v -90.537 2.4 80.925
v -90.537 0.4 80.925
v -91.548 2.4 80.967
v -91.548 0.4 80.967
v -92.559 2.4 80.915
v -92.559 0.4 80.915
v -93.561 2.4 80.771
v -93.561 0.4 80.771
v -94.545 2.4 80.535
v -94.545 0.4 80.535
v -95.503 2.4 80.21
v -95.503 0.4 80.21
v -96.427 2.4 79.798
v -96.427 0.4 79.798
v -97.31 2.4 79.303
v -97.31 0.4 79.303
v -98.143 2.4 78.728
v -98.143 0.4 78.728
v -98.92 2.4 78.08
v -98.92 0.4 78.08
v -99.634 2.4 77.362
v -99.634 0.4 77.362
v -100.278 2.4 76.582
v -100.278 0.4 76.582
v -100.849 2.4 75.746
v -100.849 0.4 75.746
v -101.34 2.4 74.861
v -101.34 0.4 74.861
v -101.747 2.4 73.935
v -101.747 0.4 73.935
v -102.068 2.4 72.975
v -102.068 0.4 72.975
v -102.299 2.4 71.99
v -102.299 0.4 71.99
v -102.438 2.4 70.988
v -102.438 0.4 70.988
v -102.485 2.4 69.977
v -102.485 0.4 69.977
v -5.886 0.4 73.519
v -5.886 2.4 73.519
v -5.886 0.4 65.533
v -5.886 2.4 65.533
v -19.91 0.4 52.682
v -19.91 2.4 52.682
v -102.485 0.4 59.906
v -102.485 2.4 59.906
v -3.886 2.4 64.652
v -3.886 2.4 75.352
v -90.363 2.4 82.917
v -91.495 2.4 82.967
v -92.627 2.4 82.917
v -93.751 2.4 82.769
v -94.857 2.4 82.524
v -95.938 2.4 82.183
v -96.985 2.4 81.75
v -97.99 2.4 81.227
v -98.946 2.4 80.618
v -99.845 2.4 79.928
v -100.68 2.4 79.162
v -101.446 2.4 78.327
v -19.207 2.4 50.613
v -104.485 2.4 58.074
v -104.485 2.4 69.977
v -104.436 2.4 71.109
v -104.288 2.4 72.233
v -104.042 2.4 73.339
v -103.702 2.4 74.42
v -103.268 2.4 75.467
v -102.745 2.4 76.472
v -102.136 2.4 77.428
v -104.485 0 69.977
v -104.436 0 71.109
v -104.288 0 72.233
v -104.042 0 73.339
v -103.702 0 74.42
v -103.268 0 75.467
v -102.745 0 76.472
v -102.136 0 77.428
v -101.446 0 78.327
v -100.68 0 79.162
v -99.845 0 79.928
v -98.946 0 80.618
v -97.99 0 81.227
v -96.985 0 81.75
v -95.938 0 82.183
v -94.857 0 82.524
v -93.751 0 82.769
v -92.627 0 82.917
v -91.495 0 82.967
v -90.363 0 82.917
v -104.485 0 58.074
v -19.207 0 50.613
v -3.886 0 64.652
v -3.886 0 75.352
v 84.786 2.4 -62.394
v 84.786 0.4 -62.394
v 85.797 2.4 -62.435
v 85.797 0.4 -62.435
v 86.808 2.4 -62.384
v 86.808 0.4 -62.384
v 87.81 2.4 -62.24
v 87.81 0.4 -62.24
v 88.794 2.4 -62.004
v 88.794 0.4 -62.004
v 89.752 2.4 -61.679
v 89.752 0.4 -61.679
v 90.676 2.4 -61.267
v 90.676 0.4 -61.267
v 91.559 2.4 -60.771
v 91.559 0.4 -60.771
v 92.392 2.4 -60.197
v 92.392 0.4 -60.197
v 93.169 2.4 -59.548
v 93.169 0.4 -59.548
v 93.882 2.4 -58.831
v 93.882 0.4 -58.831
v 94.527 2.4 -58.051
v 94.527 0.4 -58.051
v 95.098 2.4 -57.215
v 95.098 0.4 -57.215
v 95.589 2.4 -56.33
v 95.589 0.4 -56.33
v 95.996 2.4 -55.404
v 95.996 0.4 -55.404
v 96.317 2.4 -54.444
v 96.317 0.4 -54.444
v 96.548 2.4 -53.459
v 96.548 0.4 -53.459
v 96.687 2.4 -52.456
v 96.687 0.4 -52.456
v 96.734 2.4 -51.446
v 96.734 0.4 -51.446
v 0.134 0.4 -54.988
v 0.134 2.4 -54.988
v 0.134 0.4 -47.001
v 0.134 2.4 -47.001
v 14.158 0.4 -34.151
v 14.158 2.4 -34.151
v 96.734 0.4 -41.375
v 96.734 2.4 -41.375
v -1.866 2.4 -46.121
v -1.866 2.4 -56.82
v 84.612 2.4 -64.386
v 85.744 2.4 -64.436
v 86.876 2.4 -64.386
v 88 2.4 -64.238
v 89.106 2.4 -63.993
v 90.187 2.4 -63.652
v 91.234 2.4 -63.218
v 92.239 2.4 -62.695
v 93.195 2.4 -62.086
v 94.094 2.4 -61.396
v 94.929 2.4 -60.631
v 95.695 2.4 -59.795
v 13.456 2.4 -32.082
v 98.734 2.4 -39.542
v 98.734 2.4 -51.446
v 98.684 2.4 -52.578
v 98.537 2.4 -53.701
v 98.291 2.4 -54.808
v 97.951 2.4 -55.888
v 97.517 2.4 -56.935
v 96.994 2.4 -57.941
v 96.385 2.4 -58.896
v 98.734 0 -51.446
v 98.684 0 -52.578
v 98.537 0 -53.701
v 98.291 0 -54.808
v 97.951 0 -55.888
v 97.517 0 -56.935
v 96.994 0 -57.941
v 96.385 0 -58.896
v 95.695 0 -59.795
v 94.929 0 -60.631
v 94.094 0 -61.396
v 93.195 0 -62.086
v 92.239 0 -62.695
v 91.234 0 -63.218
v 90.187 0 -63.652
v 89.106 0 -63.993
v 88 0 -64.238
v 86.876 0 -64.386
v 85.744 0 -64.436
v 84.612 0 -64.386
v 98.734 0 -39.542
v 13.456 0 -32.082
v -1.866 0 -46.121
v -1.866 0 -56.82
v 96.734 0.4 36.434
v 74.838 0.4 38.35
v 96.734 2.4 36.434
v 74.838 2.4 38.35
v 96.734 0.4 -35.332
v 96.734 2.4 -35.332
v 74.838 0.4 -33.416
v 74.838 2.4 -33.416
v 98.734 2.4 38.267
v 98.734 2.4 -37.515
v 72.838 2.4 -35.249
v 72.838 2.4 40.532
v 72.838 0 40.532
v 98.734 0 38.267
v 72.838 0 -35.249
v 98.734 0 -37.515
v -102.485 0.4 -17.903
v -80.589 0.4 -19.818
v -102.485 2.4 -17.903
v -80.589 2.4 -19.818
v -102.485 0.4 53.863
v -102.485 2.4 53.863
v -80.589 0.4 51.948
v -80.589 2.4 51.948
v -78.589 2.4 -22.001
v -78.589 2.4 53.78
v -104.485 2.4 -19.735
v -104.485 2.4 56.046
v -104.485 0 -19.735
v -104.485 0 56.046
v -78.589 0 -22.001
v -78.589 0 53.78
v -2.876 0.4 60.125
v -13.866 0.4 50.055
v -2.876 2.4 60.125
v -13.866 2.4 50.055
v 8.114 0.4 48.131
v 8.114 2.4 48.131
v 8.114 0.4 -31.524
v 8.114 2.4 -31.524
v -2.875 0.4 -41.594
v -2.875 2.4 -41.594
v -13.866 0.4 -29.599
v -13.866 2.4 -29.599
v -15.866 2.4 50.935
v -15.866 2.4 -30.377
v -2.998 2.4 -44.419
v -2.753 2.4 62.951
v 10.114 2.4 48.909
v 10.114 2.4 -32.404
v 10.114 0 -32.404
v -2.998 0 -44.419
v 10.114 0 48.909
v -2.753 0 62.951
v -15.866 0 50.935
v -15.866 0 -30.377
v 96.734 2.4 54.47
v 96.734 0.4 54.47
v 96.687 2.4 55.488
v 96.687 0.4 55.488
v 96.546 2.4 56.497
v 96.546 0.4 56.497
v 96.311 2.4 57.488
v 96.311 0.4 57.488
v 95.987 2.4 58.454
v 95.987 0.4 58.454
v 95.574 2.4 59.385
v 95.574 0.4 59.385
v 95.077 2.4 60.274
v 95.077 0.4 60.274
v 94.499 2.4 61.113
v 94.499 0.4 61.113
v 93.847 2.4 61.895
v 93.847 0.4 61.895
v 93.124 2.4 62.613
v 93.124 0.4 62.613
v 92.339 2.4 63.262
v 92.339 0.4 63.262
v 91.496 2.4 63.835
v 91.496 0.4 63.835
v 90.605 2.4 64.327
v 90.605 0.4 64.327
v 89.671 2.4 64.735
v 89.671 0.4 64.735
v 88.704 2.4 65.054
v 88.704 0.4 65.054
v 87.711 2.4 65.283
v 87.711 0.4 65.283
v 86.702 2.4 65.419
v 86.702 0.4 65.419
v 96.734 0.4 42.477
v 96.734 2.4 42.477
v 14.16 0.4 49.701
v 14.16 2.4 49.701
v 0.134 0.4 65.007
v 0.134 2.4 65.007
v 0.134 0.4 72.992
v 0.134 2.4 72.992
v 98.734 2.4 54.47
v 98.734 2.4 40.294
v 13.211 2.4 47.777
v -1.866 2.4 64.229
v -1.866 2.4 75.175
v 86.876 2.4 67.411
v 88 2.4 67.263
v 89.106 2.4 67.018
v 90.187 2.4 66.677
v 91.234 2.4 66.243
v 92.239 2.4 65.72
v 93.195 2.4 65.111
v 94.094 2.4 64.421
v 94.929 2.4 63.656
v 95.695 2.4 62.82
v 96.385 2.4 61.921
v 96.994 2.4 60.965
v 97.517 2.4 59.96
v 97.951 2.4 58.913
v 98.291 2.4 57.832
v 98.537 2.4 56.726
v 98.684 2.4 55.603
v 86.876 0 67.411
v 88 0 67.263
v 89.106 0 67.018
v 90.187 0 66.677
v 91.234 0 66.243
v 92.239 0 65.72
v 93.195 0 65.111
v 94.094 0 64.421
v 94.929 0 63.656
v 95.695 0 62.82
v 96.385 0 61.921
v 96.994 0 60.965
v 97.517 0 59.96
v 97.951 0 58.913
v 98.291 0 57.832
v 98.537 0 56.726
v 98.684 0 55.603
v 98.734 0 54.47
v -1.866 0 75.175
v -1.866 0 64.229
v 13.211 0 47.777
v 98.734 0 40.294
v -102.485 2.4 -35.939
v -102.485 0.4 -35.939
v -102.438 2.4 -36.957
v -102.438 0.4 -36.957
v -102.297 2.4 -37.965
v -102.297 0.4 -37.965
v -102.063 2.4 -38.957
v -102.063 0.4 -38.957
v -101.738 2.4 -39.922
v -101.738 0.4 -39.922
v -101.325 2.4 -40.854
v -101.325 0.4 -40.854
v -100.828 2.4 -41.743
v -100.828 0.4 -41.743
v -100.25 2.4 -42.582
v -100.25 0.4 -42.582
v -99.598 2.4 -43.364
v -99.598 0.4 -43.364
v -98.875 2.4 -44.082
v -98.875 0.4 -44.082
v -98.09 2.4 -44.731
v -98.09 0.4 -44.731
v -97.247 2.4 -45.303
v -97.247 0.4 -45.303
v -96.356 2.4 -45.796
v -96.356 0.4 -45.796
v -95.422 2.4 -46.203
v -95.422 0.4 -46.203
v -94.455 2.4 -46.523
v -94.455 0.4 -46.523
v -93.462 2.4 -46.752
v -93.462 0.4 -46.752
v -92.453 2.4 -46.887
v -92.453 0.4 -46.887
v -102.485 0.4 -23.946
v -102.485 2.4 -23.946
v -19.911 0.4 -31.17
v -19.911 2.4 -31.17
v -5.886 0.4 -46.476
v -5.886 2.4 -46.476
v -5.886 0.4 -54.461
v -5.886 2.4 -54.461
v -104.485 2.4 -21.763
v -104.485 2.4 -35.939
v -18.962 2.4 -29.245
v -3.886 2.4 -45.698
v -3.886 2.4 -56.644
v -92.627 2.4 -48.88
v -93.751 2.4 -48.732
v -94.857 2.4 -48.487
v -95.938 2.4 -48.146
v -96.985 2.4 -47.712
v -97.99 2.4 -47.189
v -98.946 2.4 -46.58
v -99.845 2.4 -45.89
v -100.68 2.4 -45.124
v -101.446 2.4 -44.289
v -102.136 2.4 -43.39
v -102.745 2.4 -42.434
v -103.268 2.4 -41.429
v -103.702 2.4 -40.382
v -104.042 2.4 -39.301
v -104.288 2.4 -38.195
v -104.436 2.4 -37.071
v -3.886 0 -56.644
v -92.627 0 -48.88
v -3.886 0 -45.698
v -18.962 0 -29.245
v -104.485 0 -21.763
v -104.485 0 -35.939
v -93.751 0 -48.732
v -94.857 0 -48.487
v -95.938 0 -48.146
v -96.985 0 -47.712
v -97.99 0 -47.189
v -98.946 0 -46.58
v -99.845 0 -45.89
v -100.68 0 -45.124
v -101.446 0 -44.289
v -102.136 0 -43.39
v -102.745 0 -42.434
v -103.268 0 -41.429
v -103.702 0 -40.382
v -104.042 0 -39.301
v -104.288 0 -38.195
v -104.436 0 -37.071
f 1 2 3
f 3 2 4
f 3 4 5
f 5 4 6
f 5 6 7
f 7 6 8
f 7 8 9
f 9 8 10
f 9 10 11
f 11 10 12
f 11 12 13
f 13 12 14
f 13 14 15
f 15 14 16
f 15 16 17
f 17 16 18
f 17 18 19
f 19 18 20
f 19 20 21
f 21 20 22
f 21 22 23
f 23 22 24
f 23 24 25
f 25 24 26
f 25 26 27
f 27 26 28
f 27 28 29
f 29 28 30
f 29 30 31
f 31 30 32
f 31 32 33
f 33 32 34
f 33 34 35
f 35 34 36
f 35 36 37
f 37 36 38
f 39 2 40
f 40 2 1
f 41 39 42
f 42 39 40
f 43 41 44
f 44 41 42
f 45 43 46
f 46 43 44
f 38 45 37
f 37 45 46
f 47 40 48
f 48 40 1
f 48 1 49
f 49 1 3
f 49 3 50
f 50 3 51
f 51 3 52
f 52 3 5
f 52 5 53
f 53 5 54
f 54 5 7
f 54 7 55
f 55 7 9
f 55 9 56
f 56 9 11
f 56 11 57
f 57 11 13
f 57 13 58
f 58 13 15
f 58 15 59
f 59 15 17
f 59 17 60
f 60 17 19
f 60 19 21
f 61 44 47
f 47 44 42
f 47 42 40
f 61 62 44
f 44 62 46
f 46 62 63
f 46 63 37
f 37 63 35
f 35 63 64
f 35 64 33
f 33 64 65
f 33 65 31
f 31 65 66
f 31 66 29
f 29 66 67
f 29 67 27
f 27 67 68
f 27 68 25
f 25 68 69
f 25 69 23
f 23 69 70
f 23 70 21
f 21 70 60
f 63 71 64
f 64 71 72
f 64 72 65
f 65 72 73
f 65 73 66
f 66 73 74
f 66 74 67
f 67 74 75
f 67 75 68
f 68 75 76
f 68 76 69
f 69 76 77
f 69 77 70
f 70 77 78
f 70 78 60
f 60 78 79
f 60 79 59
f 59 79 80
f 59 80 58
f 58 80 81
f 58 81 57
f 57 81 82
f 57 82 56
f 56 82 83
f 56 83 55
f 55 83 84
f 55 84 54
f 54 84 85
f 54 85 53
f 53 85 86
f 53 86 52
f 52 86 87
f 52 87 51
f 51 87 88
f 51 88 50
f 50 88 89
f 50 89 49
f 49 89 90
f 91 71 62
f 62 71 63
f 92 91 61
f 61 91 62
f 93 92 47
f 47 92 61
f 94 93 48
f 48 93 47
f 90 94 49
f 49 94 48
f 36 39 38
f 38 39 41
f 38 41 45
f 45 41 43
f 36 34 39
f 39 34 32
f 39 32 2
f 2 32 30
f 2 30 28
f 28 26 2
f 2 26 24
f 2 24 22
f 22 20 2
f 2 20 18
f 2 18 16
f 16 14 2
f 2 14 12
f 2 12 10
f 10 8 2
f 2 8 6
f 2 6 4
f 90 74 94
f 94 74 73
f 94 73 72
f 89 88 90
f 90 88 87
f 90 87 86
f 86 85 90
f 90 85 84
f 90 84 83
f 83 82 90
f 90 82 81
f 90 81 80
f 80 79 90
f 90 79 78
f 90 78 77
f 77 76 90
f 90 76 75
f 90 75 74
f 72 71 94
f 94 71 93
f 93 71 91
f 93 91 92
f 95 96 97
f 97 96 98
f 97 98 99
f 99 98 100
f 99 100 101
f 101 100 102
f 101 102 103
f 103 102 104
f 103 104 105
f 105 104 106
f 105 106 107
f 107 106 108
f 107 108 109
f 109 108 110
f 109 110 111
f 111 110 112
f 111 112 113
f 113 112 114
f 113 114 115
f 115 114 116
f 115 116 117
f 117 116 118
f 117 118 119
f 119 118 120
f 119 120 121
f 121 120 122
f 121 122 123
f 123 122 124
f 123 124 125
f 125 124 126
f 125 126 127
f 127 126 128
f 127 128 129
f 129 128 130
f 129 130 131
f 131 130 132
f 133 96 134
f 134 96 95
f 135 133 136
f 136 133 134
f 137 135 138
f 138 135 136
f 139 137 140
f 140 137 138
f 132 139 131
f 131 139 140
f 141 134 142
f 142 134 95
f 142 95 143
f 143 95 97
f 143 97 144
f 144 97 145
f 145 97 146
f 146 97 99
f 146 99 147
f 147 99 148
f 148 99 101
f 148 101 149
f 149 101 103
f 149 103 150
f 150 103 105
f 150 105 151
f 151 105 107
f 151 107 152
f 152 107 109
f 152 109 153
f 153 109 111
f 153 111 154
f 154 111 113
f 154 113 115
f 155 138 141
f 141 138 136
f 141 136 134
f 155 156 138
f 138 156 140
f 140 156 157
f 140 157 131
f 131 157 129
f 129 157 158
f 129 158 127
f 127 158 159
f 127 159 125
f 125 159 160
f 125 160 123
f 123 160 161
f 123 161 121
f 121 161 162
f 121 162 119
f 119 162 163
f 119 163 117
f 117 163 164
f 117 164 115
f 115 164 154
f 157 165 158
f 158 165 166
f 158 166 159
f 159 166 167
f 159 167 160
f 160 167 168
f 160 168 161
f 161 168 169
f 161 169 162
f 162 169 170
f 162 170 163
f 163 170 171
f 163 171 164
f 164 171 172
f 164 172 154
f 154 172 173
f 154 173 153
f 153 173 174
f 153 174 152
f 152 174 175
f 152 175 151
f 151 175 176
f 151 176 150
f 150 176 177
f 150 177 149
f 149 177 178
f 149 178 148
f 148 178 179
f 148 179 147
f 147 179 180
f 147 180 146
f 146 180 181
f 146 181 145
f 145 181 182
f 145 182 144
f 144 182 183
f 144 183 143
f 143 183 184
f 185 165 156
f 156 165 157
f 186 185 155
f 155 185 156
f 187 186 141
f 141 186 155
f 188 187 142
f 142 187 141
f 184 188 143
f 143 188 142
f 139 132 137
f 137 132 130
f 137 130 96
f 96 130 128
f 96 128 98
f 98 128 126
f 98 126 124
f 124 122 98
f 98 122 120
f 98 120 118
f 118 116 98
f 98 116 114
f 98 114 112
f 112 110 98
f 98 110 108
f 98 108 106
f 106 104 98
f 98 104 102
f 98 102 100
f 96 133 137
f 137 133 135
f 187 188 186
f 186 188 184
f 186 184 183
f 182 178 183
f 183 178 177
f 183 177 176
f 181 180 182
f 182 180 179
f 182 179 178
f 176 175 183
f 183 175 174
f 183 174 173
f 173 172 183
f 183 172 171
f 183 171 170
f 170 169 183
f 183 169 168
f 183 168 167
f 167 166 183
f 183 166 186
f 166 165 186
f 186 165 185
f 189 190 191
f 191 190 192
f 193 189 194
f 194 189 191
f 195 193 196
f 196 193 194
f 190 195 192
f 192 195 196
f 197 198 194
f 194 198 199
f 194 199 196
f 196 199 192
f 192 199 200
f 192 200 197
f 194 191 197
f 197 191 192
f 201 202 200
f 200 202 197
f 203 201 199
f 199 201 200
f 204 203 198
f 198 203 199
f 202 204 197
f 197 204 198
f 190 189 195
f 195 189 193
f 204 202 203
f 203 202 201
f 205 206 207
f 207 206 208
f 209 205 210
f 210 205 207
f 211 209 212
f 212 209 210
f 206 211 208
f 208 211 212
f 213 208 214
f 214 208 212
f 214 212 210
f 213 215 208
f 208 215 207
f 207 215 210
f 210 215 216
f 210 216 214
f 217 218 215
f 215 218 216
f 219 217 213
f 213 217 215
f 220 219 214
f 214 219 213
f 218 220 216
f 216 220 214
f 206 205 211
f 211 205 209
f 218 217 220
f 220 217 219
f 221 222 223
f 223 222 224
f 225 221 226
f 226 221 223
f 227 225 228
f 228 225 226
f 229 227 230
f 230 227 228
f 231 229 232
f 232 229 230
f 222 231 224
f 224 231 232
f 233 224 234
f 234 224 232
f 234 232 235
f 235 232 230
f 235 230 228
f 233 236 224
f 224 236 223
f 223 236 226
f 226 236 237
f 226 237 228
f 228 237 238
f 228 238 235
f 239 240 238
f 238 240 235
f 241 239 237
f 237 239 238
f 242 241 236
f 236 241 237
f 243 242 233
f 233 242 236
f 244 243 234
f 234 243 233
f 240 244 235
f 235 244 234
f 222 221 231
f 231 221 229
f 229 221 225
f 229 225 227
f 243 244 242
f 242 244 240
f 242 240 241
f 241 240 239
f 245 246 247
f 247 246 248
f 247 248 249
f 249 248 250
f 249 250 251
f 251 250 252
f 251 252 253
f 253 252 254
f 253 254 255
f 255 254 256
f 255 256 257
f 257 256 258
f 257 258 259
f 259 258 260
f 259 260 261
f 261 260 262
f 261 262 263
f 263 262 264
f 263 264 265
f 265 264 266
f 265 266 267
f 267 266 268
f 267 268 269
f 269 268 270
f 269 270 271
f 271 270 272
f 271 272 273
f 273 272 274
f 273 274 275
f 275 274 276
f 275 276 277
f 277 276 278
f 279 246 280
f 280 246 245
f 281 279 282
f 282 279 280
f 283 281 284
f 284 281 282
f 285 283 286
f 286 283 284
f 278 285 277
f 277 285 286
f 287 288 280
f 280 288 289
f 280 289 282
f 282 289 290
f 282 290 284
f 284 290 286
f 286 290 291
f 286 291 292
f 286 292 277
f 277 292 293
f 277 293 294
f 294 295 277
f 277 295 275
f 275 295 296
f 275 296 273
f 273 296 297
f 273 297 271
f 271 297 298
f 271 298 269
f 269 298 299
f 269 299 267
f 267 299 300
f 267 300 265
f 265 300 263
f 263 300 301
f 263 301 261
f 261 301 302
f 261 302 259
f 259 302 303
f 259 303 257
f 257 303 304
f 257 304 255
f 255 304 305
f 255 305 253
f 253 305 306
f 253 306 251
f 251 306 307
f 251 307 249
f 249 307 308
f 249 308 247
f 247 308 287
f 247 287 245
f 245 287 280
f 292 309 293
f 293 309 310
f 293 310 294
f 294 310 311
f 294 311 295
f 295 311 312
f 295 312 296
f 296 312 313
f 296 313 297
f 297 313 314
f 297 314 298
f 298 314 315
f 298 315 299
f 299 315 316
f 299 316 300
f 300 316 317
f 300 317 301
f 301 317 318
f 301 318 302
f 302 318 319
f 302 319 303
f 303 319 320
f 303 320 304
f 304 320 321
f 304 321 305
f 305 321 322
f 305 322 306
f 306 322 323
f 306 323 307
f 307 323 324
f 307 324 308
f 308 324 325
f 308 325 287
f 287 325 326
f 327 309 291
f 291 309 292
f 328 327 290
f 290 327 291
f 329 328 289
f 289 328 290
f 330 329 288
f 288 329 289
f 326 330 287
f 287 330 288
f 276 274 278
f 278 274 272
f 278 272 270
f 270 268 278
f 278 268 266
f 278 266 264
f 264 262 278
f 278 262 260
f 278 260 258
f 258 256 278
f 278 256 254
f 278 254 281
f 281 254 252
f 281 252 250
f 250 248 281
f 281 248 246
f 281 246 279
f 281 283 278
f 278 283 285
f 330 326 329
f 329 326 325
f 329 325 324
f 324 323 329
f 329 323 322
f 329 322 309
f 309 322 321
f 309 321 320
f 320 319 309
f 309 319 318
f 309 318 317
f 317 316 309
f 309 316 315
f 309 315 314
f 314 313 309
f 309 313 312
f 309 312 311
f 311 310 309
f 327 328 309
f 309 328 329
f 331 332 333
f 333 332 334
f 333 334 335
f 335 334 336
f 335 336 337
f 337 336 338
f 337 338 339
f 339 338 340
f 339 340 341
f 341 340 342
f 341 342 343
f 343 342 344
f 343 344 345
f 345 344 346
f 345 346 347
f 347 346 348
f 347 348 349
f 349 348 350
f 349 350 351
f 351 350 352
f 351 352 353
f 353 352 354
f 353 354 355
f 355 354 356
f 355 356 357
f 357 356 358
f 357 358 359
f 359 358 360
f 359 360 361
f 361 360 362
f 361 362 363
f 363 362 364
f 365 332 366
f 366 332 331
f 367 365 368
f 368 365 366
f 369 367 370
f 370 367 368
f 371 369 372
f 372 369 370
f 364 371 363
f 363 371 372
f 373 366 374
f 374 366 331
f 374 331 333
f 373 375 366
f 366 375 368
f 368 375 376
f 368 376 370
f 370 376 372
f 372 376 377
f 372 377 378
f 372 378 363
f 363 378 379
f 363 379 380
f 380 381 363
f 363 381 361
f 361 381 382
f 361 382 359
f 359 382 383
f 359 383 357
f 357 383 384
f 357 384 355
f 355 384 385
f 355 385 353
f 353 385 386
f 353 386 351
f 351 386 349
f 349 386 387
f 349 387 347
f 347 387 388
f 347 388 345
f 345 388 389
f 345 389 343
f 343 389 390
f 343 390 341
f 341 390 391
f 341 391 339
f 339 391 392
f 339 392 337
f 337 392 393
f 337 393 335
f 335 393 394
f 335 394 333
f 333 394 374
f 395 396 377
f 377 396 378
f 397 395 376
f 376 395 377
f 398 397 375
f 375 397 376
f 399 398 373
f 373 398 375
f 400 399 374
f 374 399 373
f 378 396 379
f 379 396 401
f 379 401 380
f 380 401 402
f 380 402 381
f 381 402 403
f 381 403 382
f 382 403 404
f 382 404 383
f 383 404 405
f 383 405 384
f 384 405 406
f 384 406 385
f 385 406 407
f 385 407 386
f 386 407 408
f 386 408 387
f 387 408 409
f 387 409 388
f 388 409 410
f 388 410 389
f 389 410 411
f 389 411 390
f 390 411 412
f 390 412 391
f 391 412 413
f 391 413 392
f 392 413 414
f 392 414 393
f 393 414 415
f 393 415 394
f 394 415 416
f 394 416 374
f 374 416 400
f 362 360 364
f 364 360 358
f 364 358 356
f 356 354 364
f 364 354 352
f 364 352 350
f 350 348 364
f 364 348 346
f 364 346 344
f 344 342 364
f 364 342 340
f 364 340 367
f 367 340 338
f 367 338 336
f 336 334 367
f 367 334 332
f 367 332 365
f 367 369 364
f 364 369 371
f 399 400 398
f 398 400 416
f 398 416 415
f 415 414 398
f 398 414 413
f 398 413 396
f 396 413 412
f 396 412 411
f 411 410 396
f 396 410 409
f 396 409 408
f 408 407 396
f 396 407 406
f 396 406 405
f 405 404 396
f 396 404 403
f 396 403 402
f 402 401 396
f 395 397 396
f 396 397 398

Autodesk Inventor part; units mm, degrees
ref_plane "YZ Plane" through (0, 0, 0) normal (1, 0, 0) x (0, 1, 0)
ref_plane "XZ Plane" through (0, 0, 0) normal (0, 1, 0) x (-1, 0, 0)
ref_plane "XY Plane" through (0, 0, 0) normal (0, 0, 1) x (1, 0, 0)
sketch "Sketch1" plane through (0, 0, 0) normal (0, 1, 0) x (-1, 0, 0)
  line L0 (-12.1245, -29.9474) -> (-12.1245, 45.854) construction
  line L1 (-12.1245, 45.854) -> (-70.8276, 40.7181) construction
  line L2 (-70.8276, 40.7181) -> (-70.8276, -35.0832) construction
  line L3 (-70.8276, -35.0832) -> (-12.1245, -29.9474) construction
  circle A0 centre (-41.476, 5.3854) radius 9 construction
  circle A1 centre (-41.476, 5.3854) radius 9 construction
  line L4 (-12.1245, 45.854) -> (-12.1245, -29.9474) construction
  line L5 (-12.1245, -29.9474) -> (-70.8276, -35.0832) construction
  line L6 (-70.8276, -35.0832) -> (-70.8276, 40.7181) construction
  line L7 (-70.8276, 40.7181) -> (-12.1245, 45.854) construction
  circle A2 centre (47.2271, 13.1459) radius 9 construction
  line L8 (17.8755, 48.4787) -> (76.5787, 53.6145) construction
  line L9 (76.5787, 53.6145) -> (76.5787, -22.1868) construction
  line L10 (76.5787, -22.1868) -> (17.8755, -27.3227) construction
  line L11 (17.8755, -27.3227) -> (17.8755, 48.4787) construction
  line L12 (-116.1245, 90.6782) -> (121.8755, 90.6782) construction
  arc A3 (125.9548, 86.599) -> (121.8755, 90.6782) centre (121.8755, 86.599) ccw construction
  line L13 (125.9548, 86.599) -> (125.9548, -68.0677) construction
  arc A4 (121.8755, -72.1469) -> (125.9548, -68.0677) centre (121.8755, -68.0677) ccw construction
  line L14 (121.8755, -72.1469) -> (-116.1245, -72.1469) construction
  arc A5 (-120.2037, -68.0677) -> (-116.1245, -72.1469) centre (-116.1245, -68.0677) ccw construction
  line L15 (-120.2037, -68.0677) -> (-120.2037, 86.599) construction
  arc A6 (-116.1245, 90.6782) -> (-120.2037, 86.599) centre (-116.1245, 86.599) ccw construction
  arc A7 (12.5619, -31.0369) -> (13.8755, -27.659) centre (8.8755, -27.659) ccw construction
  line L16 (13.8755, -27.659) -> (13.8755, 47.8594) construction
  arc A8 (13.8755, 47.8594) -> (12.2535, 51.5458) centre (8.8755, 47.8594) ccw construction
  line L17 (12.2535, 51.5458) -> (6.5619, 56.7611) construction
  arc A9 (6.5619, 56.7611) -> (-0.5024, 56.4527) centre (3.184, 53.0747) ccw construction
  line L18 (-0.5024, 56.4527) -> (-6.8108, 49.5682) construction
  arc A10 (-6.8108, 49.5682) -> (-8.1245, 46.1903) centre (-3.1245, 46.1903) ccw construction
  line L19 (-8.1245, 46.1903) -> (-8.1245, -29.3281) construction
  arc A11 (-8.1245, -29.3281) -> (-6.5024, -33.0144) centre (-3.1245, -29.3281) ccw construction
  line L20 (-6.5024, -33.0144) -> (-0.8108, -38.2298) construction
  arc A12 (-0.8108, -38.2298) -> (6.2535, -37.9214) centre (2.5671, -34.5434) ccw construction
  line L21 (6.2535, -37.9214) -> (12.5619, -31.0369) construction
  arc A13 (5.8755, 67.7282) -> (7.4976, 64.0418) centre (10.8755, 67.7282) ccw construction
  line L22 (7.4976, 64.0418) -> (18.2839, 54.1579) construction
  arc A14 (18.2839, 54.1579) -> (22.0977, 52.8633) centre (21.6619, 57.8443) ccw construction
  line L23 (22.0977, 52.8633) -> (97.9308, 59.4979) construction
  arc A15 (97.9308, 59.4979) -> (102.495, 64.4788) centre (97.495, 64.4788) ccw construction
  line L24 (102.495, 64.4788) -> (102.495, 69.9768) construction
  arc A16 (102.495, 69.9768) -> (90.5363, 80.935) centre (91.495, 69.9768) ccw construction
  line L25 (90.5363, 80.935) -> (10.4398, 73.9274) construction
  arc A17 (10.4398, 73.9274) -> (5.8755, 68.9465) centre (10.8755, 68.9465) ccw construction
  line L26 (5.8755, 68.9465) -> (5.8755, 67.7282) construction
  arc A18 (85.143, 52.3562) -> (80.5787, 47.3752) centre (85.5787, 47.3752) ccw construction
  line L27 (80.5787, 47.3752) -> (80.5787, -14.3727) construction
  arc A19 (80.5787, -14.3727) -> (86.0145, -19.3537) centre (85.5787, -14.3727) ccw construction
  line L28 (86.0145, -19.3537) -> (97.9308, -18.3111) construction
  arc A20 (97.9308, -18.3111) -> (102.495, -13.3302) centre (97.495, -13.3302) ccw construction
  line L29 (102.495, -13.3302) -> (102.495, 48.4177) construction
  arc A21 (102.495, 48.4177) -> (97.0592, 53.3987) centre (97.495, 48.4177) ccw construction
  line L30 (97.0592, 53.3987) -> (85.143, 52.3562) construction
  arc A22 (21.843, -30.9909) -> (18.5924, -32.5939) centre (22.2788, -35.9718) ccw construction
  line L31 (18.5924, -32.5939) -> (7.1892, -45.0383) construction
  arc A23 (7.1892, -45.0383) -> (5.8755, -48.4163) centre (10.8755, -48.4163) ccw construction
  line L32 (5.8755, -48.4163) -> (5.8755, -49.0153) construction
  arc A24 (5.8755, -49.0153) -> (11.3113, -53.9963) centre (10.8755, -49.0153) ccw construction
  line L33 (11.3113, -53.9963) -> (92.4537, -46.8973) construction
  arc A25 (92.4537, -46.8973) -> (102.495, -35.9391) centre (91.495, -35.9391) ccw construction
  line L34 (102.495, -35.9391) -> (102.495, -29.3913) construction
  arc A26 (102.495, -29.3913) -> (97.0592, -24.4103) centre (97.495, -29.3913) ccw construction
  line L35 (97.0592, -24.4103) -> (21.843, -30.9909) construction
  arc A27 (-4.6887, -55.3961) -> (-0.1245, -50.4152) centre (-5.1245, -50.4152) ccw construction
  line L36 (-0.1245, -50.4152) -> (-0.1245, -49.1969) construction
  arc A28 (-0.1245, -49.1969) -> (-1.7465, -45.5105) centre (-5.1245, -49.1969) ccw construction
  line L37 (-1.7465, -45.5105) -> (-12.5328, -35.6266) construction
  arc A29 (-12.5328, -35.6266) -> (-16.3466, -34.332) centre (-15.9108, -39.313) ccw construction
  line L38 (-16.3466, -34.332) -> (-92.1797, -40.9666) construction
  arc A30 (-92.1797, -40.9666) -> (-96.7439, -45.9475) centre (-91.7439, -45.9475) ccw construction
  line L39 (-96.7439, -45.9475) -> (-96.7439, -51.4455) construction
  arc A31 (-96.7439, -51.4455) -> (-84.7852, -62.4037) centre (-85.7439, -51.4455) ccw construction
  line L40 (-84.7852, -62.4037) -> (-4.6887, -55.3961) construction
  arc A32 (-79.3919, -33.8249) -> (-74.8276, -28.8439) centre (-79.8276, -28.8439) ccw construction
  line L41 (-74.8276, -28.8439) -> (-74.8276, 32.904) construction
  arc A33 (-74.8276, 32.904) -> (-80.2634, 37.885) centre (-79.8276, 32.904) ccw construction
  line L42 (-80.2634, 37.885) -> (-92.1797, 36.8424) construction
  arc A34 (-92.1797, 36.8424) -> (-96.7439, 31.8615) centre (-91.7439, 31.8615) ccw construction
  line L43 (-96.7439, 31.8615) -> (-96.7439, -29.8864) construction
  arc A35 (-96.7439, -29.8864) -> (-91.3081, -34.8674) centre (-91.7439, -29.8864) ccw construction
  line L44 (-91.3081, -34.8674) -> (-79.3919, -33.8249) construction
  arc A36 (-16.0919, 49.5222) -> (-12.8413, 51.1252) centre (-16.5277, 54.5032) ccw construction
  line L45 (-12.8413, 51.1252) -> (-1.4381, 63.5696) construction
  arc A37 (-1.4381, 63.5696) -> (-0.1245, 66.9476) centre (-5.1245, 66.9476) ccw construction
  line L46 (-0.1245, 66.9476) -> (-0.1245, 67.5466) construction
  arc A38 (-0.1245, 67.5466) -> (-5.5602, 72.5276) centre (-5.1245, 67.5466) ccw construction
  line L47 (-5.5602, 72.5276) -> (-86.7026, 65.4286) construction
  arc A39 (-86.7026, 65.4286) -> (-96.7439, 54.4704) centre (-85.7439, 54.4704) ccw construction
  line L48 (-96.7439, 54.4704) -> (-96.7439, 47.9226) construction
  arc A40 (-96.7439, 47.9226) -> (-91.3081, 42.9416) centre (-91.7439, 47.9226) ccw construction
  line L49 (-91.3081, 42.9416) -> (-16.0919, 49.5222) construction
  line L50 (19.2036, 50.6025) -> (104.495, 58.0645) construction
  line L51 (104.495, 58.0645) -> (104.495, 69.9768) construction
  arc A41 (104.495, 69.9768) -> (90.362, 82.9274) centre (91.495, 69.9768) ccw construction
  line L52 (90.362, 82.9274) -> (3.8755, 75.3608) construction
  line L53 (3.8755, 75.3608) -> (3.8755, 64.6481) construction
  line L54 (3.8755, 64.6481) -> (19.2036, 50.6025) construction
  line L55 (104.495, 56.0569) -> (78.5787, 53.7895) construction
  line L56 (78.5787, 53.7895) -> (78.5787, -22.0119) construction
  line L57 (78.5787, -22.0119) -> (104.495, -19.7445) construction
  line L58 (104.495, -19.7445) -> (104.495, 56.0569) construction
  line L59 (15.8755, -30.3811) -> (15.8755, 50.9394) construction
  line L60 (15.8755, 50.9394) -> (2.7522, 62.9648) construction
  line L61 (2.7522, 62.9648) -> (-10.1245, 48.9124) construction
  line L62 (-10.1245, 48.9124) -> (-10.1245, -32.4081) construction
  line L63 (-10.1245, -32.4081) -> (2.9989, -44.4335) construction
  line L64 (2.9989, -44.4335) -> (15.8755, -30.3811) construction
  line L65 (-13.2058, 47.767) -> (1.8755, 64.2254) construction
  line L66 (1.8755, 64.2254) -> (1.8755, 75.1858) construction
  line L67 (1.8755, 75.1858) -> (-86.8769, 67.421) construction
  arc A42 (-86.8769, 67.421) -> (-98.7439, 54.4704) centre (-85.7439, 54.4704) ccw construction
  line L68 (-98.7439, 54.4704) -> (-98.7439, 40.2834) construction
  line L69 (-98.7439, 40.2834) -> (-13.2058, 47.767) construction
  line L70 (1.8755, -46.1168) -> (-13.4525, -32.0712) construction
  line L71 (-13.4525, -32.0712) -> (-98.7439, -39.5332) construction
  line L72 (-98.7439, -39.5332) -> (-98.7439, -51.4455) construction
  arc A43 (-98.7439, -51.4455) -> (-84.6109, -64.3961) centre (-85.7439, -51.4455) ccw construction
  line L73 (-84.6109, -64.3961) -> (1.8755, -56.8295) construction
  line L74 (1.8755, -56.8295) -> (1.8755, -46.1168) construction
  line L75 (18.9569, -29.2357) -> (3.8755, -45.6941) construction
  line L76 (3.8755, -45.6941) -> (3.8755, -56.6545) construction
  line L77 (3.8755, -56.6545) -> (92.628, -48.8897) construction
  arc A44 (92.628, -48.8897) -> (104.495, -35.9391) centre (91.495, -35.9391) ccw construction
  line L78 (104.495, -35.9391) -> (104.495, -21.7521) construction
  line L79 (104.495, -21.7521) -> (18.9569, -29.2357) construction
  line L80 (-72.8276, -35.2582) -> (-72.8276, 40.5432) construction
  line L81 (-72.8276, 40.5432) -> (-98.7439, 38.2758) construction
  line L82 (-98.7439, 38.2758) -> (-98.7439, -37.5256) construction
  line L83 (-98.7439, -37.5256) -> (-72.8276, -35.2582) construction
  arc A45 (-87.0513, 69.4134) -> (-100.7439, 54.4704) centre (-85.7439, 54.4704) ccw construction
  line L84 (-87.0513, 69.4134) -> (90.1877, 84.9198) construction
  arc A46 (106.495, 69.9768) -> (90.1877, 84.9198) centre (91.495, 69.9768) ccw construction
  line L85 (106.495, 69.9768) -> (106.495, -35.9391) construction
  arc A47 (92.8024, -50.882) -> (106.495, -35.9391) centre (91.495, -35.9391) ccw construction
  line L86 (92.8024, -50.882) -> (-84.4366, -66.3884) construction
  arc A48 (-100.7439, -51.4455) -> (-84.4366, -66.3884) centre (-85.7439, -51.4455) ccw construction
  line L87 (-100.7439, -51.4455) -> (-100.7439, 54.4704) construction
  arc A49 (115.8755, 86.599) -> (121.8755, 80.599) centre (121.8755, 86.599) ccw construction
  line L88 (121.8755, 80.599) -> (121.8755, -62.0677) construction
  arc A50 (121.8755, -62.0677) -> (115.8755, -68.0677) centre (121.8755, -68.0677) ccw construction
  line L89 (115.8755, -68.0677) -> (-110.1245, -68.0677) construction
  arc A51 (-110.1245, -68.0677) -> (-116.1245, -62.0677) centre (-116.1245, -68.0677) ccw construction
  line L90 (-116.1245, -62.0677) -> (-116.1245, 80.599) construction
  arc A52 (-116.1245, 80.599) -> (-110.1245, 86.599) centre (-116.1245, 86.599) ccw construction
  line L91 (-110.1245, 86.599) -> (115.8755, 86.599) construction
  line L92 (104.485, -19.7353) -> (78.5887, -22.0009)
  line L93 (78.5887, -22.0009) -> (78.5887, 53.7803)
  line L94 (78.5887, 53.7803) -> (104.485, 56.046)
  line L95 (104.485, 56.046) -> (104.485, -19.7353)
  arc A53 (92.6272, -48.8797) -> (104.485, -35.9391) centre (91.495, -35.9391) ccw
  line L96 (92.6272, -48.8797) -> (3.8855, -56.6436)
  line L97 (3.8855, -56.6436) -> (3.8855, -45.698)
  line L98 (3.8855, -45.698) -> (18.9616, -29.2454)
  line L99 (18.9616, -29.2454) -> (104.485, -21.763)
  line L100 (104.485, -21.763) -> (104.485, -35.9391)
  line L101 (-13.456, -32.0815) -> (1.8655, -46.1212)
  line L102 (1.8655, -46.1212) -> (1.8655, -56.8203)
  line L103 (1.8655, -56.8203) -> (-84.6118, -64.3861)
  arc A54 (-98.7339, -51.4455) -> (-84.6118, -64.3861) centre (-85.7439, -51.4455) ccw
  line L104 (-98.7339, -51.4455) -> (-98.7339, -39.5424)
  line L105 (-98.7339, -39.5424) -> (-13.456, -32.0815)
  line L106 (-10.1145, -32.4037) -> (-10.1145, 48.9085)
  line L107 (-10.1145, 48.9085) -> (2.7528, 62.9507)
  line L108 (2.7528, 62.9507) -> (15.8655, 50.935)
  line L109 (15.8655, 50.935) -> (15.8655, -30.3772)
  line L110 (15.8655, -30.3772) -> (2.9983, -44.4194)
  line L111 (2.9983, -44.4194) -> (-10.1145, -32.4037)
  line L112 (104.485, 58.0737) -> (19.2071, 50.6128)
  line L113 (19.2071, 50.6128) -> (3.8855, 64.6525)
  line L114 (3.8855, 64.6525) -> (3.8855, 75.3516)
  line L115 (3.8855, 75.3516) -> (90.3629, 82.9174)
  arc A55 (104.485, 69.9768) -> (90.3629, 82.9174) centre (91.495, 69.9768) ccw
  line L116 (104.485, 69.9768) -> (104.485, 58.0737)
  line L117 (1.8655, 64.2293) -> (-13.2105, 47.7767)
  line L118 (-13.2105, 47.7767) -> (-98.7339, 40.2943)
  line L119 (-98.7339, 40.2943) -> (-98.7339, 54.4704)
  arc A56 (-86.8761, 67.411) -> (-98.7339, 54.4704) centre (-85.7439, 54.4704) ccw
  line L120 (-86.8761, 67.411) -> (1.8655, 75.1749)
  line L121 (1.8655, 75.1749) -> (1.8655, 64.2293)
  line L122 (-72.8376, 40.5323) -> (-72.8376, -35.249)
  line L123 (-72.8376, -35.249) -> (-98.7339, -37.5147)
  line L124 (-98.7339, -37.5147) -> (-98.7339, 38.2666)
  line L125 (-98.7339, 38.2666) -> (-72.8376, 40.5323)
  point P0 (2.8755, 9.2657)
  dimension "d31" = 0.01
  dimension "d32" = 0.01
  dimension "d33" = 0.01
  dimension "d34" = 0.01
  dimension "d35" = 0.01
  dimension "d36" = 0.01
  dimension "d37" = 0.01
extrude "Extrusion1" add sketch "Sketch1" along normal blind 0.4
sketch "Sketch9" plane through (0, 0.4, 0) normal (0, 1, 0) x (1, 0, 0)
  line L0 (-90.3629, -82.9174) -> (-3.8855, -75.3516) projected
  line L1 (-3.8855, -75.3516) -> (-3.8855, -64.6525) projected
  line L2 (-3.8855, -64.6525) -> (-19.2071, -50.6128) projected
  line L3 (-19.2071, -50.6128) -> (-104.485, -58.0737) projected
  line L4 (-104.485, -58.0737) -> (-104.485, -69.9768) projected
  arc A0 (-104.485, -69.9768) -> (-90.3629, -82.9174) centre (-91.495, -69.9768) ccw projected
  line L5 (-104.485, -56.046) -> (-78.5887, -53.7803) projected
  line L6 (-78.5887, -53.7803) -> (-78.5887, 22.0009) projected
  line L7 (-78.5887, 22.0009) -> (-104.485, 19.7353) projected
  line L8 (-104.485, 19.7353) -> (-104.485, -56.046) projected
  arc A1 (-92.6272, 48.8797) -> (-104.485, 35.9391) centre (-91.495, 35.9391) ccw projected
  line L9 (-104.485, 35.9391) -> (-104.485, 21.763) projected
  line L10 (-104.485, 21.763) -> (-18.9616, 29.2454) projected
  line L11 (-18.9616, 29.2454) -> (-3.8855, 45.698) projected
  line L12 (-3.8855, 45.698) -> (-3.8855, 56.6436) projected
  line L13 (-3.8855, 56.6436) -> (-92.6272, 48.8797) projected
  line L14 (-2.9983, 44.4194) -> (-15.8655, 30.3772) projected
  line L15 (-15.8655, 30.3772) -> (-15.8655, -50.935) projected
  line L16 (-15.8655, -50.935) -> (-2.7528, -62.9507) projected
  line L17 (-2.7528, -62.9507) -> (10.1145, -48.9085) projected
  line L18 (10.1145, -48.9085) -> (10.1145, 32.4037) projected
  line L19 (10.1145, 32.4037) -> (-2.9983, 44.4194) projected
  line L20 (84.6118, 64.3861) -> (-1.8655, 56.8203) projected
  line L21 (-1.8655, 56.8203) -> (-1.8655, 46.1212) projected
  line L22 (-1.8655, 46.1212) -> (13.456, 32.0815) projected
  line L23 (13.456, 32.0815) -> (98.7339, 39.5424) projected
  line L24 (98.7339, 39.5424) -> (98.7339, 51.4455) projected
  arc A2 (98.7339, 51.4455) -> (84.6118, 64.3861) centre (85.7439, 51.4455) ccw projected
  line L25 (98.7339, -38.2666) -> (98.7339, 37.5147) projected
  line L26 (98.7339, 37.5147) -> (72.8376, 35.249) projected
  line L27 (72.8376, 35.249) -> (72.8376, -40.5323) projected
  line L28 (72.8376, -40.5323) -> (98.7339, -38.2666) projected
  line L29 (98.7339, -54.4704) -> (98.7339, -40.2943) projected
  line L30 (98.7339, -40.2943) -> (13.2105, -47.7767) projected
  line L31 (13.2105, -47.7767) -> (-1.8655, -64.2293) projected
  line L32 (-1.8655, -64.2293) -> (-1.8655, -75.1749) projected
  line L33 (-1.8655, -75.1749) -> (86.8761, -67.411) projected
  arc A3 (86.8761, -67.411) -> (98.7339, -54.4704) centre (85.7439, -54.4704) ccw projected
  line L34 (-102.485, -59.9064) -> (-19.9095, -52.6819)
  line L35 (-19.9095, -52.6819) -> (-5.8855, -65.5325)
  line L36 (-5.8855, -65.5325) -> (-5.8855, -73.519)
  line L37 (-5.8855, -73.519) -> (-90.5372, -80.925)
  arc A4 (-102.485, -69.9768) -> (-90.5372, -80.925) centre (-91.495, -69.9768) ccw
  line L38 (-102.485, -69.9768) -> (-102.485, -59.9064)
  line L39 (-80.5887, 19.8183) -> (-80.5887, -51.9477)
  line L40 (-80.5887, -51.9477) -> (-102.485, -53.8634)
  line L41 (-102.485, -53.8634) -> (-102.485, 17.9027)
  line L42 (-102.485, 17.9027) -> (-80.5887, 19.8183)
  line L43 (-19.9107, 31.17) -> (-102.485, 23.9456)
  line L44 (-102.485, 23.9456) -> (-102.485, 35.9391)
  arc A5 (-92.4529, 46.8873) -> (-102.485, 35.9391) centre (-91.495, 35.9391) ccw
  line L45 (-92.4529, 46.8873) -> (-5.8855, 54.461)
  line L46 (-5.8855, 54.461) -> (-5.8855, 46.4758)
  line L47 (-5.8855, 46.4758) -> (-19.9107, 31.17)
  line L48 (-13.8655, -50.055) -> (-13.8655, 29.5995)
  line L49 (-13.8655, 29.5995) -> (-2.8749, 41.5936)
  line L50 (-2.8749, 41.5936) -> (8.1145, 31.5237)
  line L51 (8.1145, 31.5237) -> (8.1145, -48.1308)
  line L52 (8.1145, -48.1308) -> (-2.8762, -60.1249)
  line L53 (-2.8762, -60.1249) -> (-13.8655, -50.055)
  line L54 (96.7339, 41.375) -> (14.1584, 34.1506)
  line L55 (14.1584, 34.1506) -> (0.1345, 47.0012)
  line L56 (0.1345, 47.0012) -> (0.1345, 54.9876)
  line L57 (0.1345, 54.9876) -> (84.7861, 62.3937)
  arc A6 (96.7339, 51.4455) -> (84.7861, 62.3937) centre (85.7439, 51.4455) ccw
  line L58 (96.7339, 51.4455) -> (96.7339, 41.375)
  line L59 (74.8376, -38.3496) -> (74.8376, 33.4164)
  line L60 (74.8376, 33.4164) -> (96.7339, 35.3321)
  line L61 (96.7339, 35.3321) -> (96.7339, -36.434)
  line L62 (96.7339, -36.434) -> (74.8376, -38.3496)
  line L63 (14.1596, -49.7013) -> (96.7339, -42.477)
  line L64 (96.7339, -42.477) -> (96.7339, -54.4704)
  arc A7 (86.7018, -65.4186) -> (96.7339, -54.4704) centre (85.7439, -54.4704) ccw
  line L65 (86.7018, -65.4186) -> (0.1345, -72.9923)
  line L66 (0.1345, -72.9923) -> (0.1345, -65.0071)
  line L67 (0.1345, -65.0071) -> (14.1596, -49.7013)
  point P0 (0, 0)
  dimension "d38" = 2
  dimension "d39" = 2
  dimension "d40" = 2
  dimension "d41" = 2
  dimension "d42" = 2
  dimension "d43" = 2
  dimension "d44" = 2
extrude "Extrusion9" add sketch "Sketch9" along normal blind 2
equation "\"d32\" = d31"
equation "\"d33\" = d31"
equation "\"d34\" = d31"
equation "\"d35\" = d31"
equation "\"d36\" = d31"
equation "\"d37\" = d31"
equation "\"d39\" = d38"
equation "\"d40\" = d38"
equation "\"d41\" = d38"
equation "\"d42\" = d38"
equation "\"d43\" = d38"
equation "\"d44\" = d38"
properties part number "SegmentPanels"
